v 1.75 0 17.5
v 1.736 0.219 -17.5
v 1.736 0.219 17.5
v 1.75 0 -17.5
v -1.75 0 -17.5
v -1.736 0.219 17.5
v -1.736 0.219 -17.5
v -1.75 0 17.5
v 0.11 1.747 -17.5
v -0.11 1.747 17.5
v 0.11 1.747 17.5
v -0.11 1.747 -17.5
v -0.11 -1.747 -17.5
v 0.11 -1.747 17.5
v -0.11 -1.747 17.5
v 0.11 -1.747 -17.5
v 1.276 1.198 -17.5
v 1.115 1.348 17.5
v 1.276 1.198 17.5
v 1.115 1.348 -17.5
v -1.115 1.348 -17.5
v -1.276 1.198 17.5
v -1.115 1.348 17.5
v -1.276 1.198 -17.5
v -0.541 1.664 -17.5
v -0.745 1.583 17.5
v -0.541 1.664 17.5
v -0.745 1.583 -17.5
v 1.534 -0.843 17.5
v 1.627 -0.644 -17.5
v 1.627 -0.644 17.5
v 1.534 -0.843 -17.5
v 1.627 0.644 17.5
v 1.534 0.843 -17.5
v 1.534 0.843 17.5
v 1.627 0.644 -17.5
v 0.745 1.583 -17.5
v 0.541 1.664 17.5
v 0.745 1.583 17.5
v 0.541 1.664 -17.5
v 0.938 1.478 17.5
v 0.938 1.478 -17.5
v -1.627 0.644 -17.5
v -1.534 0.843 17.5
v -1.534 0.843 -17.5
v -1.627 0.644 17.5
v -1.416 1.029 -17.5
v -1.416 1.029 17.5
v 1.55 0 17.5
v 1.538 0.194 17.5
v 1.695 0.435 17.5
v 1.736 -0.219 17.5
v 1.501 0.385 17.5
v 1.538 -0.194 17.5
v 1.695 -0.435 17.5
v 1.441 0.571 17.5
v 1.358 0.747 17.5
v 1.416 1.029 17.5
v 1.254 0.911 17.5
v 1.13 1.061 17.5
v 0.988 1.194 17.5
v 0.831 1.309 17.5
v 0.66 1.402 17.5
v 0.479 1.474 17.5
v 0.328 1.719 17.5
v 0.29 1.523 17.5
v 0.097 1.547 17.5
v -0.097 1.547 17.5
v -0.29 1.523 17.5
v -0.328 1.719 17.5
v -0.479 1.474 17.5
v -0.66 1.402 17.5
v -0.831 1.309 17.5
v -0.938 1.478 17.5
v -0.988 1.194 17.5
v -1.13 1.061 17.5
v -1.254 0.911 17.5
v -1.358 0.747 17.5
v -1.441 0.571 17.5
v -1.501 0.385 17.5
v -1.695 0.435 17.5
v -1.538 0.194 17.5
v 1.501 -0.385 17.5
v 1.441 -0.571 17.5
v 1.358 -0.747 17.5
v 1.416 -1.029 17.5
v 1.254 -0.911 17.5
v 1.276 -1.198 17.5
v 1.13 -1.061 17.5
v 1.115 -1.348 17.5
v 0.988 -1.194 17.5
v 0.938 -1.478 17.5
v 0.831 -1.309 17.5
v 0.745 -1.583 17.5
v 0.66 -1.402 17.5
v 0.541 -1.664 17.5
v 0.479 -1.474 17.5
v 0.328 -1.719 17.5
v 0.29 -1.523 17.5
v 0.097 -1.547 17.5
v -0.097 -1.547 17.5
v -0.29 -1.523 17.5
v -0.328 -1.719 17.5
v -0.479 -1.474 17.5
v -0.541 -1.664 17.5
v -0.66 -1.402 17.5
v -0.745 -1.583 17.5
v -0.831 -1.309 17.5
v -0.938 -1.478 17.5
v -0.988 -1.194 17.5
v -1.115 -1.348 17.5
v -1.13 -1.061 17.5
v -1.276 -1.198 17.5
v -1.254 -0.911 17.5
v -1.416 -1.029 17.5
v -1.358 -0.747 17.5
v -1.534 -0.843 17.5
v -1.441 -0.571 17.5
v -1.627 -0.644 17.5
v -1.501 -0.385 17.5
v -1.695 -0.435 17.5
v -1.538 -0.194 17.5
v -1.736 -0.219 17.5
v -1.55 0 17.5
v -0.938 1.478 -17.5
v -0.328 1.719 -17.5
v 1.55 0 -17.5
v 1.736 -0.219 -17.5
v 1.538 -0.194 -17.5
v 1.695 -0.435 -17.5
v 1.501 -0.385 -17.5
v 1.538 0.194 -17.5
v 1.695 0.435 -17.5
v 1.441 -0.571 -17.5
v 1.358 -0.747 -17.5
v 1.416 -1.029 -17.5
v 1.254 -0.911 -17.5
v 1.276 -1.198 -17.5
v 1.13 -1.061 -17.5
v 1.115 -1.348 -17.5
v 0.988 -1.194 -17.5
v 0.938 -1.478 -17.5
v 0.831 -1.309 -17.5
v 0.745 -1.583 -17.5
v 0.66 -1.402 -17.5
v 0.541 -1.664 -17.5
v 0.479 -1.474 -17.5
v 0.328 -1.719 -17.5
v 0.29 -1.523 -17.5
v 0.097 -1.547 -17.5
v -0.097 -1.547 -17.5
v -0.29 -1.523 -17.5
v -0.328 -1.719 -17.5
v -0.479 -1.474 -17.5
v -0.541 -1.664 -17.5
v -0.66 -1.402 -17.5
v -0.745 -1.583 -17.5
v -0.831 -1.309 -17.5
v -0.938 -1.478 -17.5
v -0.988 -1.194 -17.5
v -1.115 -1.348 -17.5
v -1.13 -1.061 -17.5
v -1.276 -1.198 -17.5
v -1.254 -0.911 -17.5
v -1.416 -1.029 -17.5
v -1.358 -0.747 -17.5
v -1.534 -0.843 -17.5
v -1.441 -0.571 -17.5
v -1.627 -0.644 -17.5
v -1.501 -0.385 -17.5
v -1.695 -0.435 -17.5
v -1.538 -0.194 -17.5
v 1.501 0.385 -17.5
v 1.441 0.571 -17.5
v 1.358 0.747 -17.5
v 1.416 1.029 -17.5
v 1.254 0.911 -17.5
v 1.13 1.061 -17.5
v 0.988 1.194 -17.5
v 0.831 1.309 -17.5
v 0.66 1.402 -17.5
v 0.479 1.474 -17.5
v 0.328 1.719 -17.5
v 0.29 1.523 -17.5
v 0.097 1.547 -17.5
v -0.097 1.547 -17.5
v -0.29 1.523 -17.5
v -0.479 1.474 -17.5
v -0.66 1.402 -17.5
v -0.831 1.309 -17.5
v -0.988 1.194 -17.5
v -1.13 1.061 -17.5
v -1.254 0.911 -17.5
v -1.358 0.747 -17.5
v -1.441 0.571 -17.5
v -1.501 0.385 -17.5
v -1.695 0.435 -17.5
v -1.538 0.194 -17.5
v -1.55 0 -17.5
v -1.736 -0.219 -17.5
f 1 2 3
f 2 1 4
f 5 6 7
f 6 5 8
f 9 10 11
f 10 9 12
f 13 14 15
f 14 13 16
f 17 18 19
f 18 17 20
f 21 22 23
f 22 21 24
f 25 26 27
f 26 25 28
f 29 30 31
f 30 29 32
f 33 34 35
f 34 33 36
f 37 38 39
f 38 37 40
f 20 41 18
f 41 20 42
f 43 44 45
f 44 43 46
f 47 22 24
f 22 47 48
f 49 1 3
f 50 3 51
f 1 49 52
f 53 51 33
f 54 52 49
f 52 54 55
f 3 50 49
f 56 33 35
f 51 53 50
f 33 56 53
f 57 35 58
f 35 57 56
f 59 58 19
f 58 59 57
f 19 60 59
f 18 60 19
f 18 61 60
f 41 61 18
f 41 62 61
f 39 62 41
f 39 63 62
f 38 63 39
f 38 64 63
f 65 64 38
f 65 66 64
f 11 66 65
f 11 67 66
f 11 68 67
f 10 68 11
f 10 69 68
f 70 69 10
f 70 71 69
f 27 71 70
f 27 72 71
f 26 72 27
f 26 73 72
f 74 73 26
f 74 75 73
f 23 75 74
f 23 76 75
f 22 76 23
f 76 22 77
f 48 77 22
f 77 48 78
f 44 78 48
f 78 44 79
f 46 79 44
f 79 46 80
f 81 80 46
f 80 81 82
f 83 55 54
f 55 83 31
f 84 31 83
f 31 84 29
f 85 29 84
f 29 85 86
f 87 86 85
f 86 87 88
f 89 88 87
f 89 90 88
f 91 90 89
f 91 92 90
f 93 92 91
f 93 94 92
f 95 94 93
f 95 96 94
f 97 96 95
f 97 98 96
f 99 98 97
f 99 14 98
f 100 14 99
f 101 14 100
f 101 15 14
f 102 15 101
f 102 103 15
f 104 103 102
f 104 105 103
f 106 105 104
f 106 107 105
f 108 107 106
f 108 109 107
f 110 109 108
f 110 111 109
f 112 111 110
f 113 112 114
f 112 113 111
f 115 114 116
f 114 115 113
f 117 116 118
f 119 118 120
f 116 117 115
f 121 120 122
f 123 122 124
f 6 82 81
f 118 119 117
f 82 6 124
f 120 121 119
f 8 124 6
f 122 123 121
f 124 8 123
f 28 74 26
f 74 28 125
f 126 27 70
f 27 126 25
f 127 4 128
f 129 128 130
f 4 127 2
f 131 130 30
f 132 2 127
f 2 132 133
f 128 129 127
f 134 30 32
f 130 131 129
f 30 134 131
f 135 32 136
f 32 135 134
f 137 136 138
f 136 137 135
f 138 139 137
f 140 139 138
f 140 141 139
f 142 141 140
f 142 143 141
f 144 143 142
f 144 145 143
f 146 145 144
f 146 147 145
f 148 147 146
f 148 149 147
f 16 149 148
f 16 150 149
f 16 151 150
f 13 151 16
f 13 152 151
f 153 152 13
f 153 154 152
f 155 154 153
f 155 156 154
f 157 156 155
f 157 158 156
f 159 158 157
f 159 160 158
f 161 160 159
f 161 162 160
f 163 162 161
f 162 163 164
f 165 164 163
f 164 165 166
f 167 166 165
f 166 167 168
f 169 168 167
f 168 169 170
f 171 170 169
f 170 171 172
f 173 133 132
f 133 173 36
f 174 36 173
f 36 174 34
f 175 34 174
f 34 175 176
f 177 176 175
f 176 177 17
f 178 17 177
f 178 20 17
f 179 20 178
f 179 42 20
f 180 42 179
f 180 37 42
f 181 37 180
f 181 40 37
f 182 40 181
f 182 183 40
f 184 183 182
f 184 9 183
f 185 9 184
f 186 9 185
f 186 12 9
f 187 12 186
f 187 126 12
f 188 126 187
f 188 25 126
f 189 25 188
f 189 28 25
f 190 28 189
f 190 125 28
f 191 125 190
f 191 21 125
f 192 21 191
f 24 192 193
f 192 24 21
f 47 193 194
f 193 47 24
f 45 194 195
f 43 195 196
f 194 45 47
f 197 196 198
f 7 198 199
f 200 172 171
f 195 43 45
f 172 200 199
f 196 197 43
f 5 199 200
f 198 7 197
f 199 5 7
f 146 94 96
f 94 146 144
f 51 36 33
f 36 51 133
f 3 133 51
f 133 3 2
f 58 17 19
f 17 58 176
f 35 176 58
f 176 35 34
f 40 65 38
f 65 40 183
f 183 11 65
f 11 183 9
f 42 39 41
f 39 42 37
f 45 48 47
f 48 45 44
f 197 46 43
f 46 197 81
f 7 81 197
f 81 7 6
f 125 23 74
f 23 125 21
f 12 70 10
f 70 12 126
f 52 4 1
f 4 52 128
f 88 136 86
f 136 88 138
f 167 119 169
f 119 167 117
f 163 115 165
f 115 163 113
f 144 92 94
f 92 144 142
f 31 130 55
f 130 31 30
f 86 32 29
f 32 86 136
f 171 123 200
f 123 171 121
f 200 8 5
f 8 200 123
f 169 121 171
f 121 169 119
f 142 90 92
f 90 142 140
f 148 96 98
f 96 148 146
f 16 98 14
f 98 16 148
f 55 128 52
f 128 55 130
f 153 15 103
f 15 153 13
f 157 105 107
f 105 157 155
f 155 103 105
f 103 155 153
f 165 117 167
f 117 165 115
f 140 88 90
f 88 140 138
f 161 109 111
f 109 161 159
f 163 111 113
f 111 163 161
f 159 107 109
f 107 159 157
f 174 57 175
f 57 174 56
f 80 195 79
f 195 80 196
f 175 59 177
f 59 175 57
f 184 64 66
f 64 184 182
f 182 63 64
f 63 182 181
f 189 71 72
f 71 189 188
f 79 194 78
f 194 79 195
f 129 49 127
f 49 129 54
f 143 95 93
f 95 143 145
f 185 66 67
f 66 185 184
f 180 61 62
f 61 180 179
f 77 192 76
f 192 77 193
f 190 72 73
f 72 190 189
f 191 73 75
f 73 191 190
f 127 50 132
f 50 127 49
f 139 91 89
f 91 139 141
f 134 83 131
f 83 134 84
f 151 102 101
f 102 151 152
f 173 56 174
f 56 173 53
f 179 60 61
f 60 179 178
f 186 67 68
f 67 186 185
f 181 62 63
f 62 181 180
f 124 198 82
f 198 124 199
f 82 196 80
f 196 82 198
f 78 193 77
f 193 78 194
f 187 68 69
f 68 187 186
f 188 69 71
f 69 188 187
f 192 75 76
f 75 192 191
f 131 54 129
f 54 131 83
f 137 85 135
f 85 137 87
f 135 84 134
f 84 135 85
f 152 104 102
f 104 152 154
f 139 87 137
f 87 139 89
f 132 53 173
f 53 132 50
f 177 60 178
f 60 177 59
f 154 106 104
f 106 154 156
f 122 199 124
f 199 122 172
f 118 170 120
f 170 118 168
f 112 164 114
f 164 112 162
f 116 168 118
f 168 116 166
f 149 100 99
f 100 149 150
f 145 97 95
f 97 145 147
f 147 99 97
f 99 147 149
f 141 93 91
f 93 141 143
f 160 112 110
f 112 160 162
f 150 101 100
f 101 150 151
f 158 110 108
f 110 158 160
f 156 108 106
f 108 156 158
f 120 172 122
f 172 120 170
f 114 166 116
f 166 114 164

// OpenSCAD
$fn = 50;


difference() {
	union() {
		translate(v = [0, 0, -17.5000000000]) {
			cylinder(h = 35, r = 1.7500000000);
		}
	}
	union() {
		translate(v = [0, 0, -100.0000000000]) {
			cylinder(h = 200, r = 1.5500000000);
		}
	}
}
